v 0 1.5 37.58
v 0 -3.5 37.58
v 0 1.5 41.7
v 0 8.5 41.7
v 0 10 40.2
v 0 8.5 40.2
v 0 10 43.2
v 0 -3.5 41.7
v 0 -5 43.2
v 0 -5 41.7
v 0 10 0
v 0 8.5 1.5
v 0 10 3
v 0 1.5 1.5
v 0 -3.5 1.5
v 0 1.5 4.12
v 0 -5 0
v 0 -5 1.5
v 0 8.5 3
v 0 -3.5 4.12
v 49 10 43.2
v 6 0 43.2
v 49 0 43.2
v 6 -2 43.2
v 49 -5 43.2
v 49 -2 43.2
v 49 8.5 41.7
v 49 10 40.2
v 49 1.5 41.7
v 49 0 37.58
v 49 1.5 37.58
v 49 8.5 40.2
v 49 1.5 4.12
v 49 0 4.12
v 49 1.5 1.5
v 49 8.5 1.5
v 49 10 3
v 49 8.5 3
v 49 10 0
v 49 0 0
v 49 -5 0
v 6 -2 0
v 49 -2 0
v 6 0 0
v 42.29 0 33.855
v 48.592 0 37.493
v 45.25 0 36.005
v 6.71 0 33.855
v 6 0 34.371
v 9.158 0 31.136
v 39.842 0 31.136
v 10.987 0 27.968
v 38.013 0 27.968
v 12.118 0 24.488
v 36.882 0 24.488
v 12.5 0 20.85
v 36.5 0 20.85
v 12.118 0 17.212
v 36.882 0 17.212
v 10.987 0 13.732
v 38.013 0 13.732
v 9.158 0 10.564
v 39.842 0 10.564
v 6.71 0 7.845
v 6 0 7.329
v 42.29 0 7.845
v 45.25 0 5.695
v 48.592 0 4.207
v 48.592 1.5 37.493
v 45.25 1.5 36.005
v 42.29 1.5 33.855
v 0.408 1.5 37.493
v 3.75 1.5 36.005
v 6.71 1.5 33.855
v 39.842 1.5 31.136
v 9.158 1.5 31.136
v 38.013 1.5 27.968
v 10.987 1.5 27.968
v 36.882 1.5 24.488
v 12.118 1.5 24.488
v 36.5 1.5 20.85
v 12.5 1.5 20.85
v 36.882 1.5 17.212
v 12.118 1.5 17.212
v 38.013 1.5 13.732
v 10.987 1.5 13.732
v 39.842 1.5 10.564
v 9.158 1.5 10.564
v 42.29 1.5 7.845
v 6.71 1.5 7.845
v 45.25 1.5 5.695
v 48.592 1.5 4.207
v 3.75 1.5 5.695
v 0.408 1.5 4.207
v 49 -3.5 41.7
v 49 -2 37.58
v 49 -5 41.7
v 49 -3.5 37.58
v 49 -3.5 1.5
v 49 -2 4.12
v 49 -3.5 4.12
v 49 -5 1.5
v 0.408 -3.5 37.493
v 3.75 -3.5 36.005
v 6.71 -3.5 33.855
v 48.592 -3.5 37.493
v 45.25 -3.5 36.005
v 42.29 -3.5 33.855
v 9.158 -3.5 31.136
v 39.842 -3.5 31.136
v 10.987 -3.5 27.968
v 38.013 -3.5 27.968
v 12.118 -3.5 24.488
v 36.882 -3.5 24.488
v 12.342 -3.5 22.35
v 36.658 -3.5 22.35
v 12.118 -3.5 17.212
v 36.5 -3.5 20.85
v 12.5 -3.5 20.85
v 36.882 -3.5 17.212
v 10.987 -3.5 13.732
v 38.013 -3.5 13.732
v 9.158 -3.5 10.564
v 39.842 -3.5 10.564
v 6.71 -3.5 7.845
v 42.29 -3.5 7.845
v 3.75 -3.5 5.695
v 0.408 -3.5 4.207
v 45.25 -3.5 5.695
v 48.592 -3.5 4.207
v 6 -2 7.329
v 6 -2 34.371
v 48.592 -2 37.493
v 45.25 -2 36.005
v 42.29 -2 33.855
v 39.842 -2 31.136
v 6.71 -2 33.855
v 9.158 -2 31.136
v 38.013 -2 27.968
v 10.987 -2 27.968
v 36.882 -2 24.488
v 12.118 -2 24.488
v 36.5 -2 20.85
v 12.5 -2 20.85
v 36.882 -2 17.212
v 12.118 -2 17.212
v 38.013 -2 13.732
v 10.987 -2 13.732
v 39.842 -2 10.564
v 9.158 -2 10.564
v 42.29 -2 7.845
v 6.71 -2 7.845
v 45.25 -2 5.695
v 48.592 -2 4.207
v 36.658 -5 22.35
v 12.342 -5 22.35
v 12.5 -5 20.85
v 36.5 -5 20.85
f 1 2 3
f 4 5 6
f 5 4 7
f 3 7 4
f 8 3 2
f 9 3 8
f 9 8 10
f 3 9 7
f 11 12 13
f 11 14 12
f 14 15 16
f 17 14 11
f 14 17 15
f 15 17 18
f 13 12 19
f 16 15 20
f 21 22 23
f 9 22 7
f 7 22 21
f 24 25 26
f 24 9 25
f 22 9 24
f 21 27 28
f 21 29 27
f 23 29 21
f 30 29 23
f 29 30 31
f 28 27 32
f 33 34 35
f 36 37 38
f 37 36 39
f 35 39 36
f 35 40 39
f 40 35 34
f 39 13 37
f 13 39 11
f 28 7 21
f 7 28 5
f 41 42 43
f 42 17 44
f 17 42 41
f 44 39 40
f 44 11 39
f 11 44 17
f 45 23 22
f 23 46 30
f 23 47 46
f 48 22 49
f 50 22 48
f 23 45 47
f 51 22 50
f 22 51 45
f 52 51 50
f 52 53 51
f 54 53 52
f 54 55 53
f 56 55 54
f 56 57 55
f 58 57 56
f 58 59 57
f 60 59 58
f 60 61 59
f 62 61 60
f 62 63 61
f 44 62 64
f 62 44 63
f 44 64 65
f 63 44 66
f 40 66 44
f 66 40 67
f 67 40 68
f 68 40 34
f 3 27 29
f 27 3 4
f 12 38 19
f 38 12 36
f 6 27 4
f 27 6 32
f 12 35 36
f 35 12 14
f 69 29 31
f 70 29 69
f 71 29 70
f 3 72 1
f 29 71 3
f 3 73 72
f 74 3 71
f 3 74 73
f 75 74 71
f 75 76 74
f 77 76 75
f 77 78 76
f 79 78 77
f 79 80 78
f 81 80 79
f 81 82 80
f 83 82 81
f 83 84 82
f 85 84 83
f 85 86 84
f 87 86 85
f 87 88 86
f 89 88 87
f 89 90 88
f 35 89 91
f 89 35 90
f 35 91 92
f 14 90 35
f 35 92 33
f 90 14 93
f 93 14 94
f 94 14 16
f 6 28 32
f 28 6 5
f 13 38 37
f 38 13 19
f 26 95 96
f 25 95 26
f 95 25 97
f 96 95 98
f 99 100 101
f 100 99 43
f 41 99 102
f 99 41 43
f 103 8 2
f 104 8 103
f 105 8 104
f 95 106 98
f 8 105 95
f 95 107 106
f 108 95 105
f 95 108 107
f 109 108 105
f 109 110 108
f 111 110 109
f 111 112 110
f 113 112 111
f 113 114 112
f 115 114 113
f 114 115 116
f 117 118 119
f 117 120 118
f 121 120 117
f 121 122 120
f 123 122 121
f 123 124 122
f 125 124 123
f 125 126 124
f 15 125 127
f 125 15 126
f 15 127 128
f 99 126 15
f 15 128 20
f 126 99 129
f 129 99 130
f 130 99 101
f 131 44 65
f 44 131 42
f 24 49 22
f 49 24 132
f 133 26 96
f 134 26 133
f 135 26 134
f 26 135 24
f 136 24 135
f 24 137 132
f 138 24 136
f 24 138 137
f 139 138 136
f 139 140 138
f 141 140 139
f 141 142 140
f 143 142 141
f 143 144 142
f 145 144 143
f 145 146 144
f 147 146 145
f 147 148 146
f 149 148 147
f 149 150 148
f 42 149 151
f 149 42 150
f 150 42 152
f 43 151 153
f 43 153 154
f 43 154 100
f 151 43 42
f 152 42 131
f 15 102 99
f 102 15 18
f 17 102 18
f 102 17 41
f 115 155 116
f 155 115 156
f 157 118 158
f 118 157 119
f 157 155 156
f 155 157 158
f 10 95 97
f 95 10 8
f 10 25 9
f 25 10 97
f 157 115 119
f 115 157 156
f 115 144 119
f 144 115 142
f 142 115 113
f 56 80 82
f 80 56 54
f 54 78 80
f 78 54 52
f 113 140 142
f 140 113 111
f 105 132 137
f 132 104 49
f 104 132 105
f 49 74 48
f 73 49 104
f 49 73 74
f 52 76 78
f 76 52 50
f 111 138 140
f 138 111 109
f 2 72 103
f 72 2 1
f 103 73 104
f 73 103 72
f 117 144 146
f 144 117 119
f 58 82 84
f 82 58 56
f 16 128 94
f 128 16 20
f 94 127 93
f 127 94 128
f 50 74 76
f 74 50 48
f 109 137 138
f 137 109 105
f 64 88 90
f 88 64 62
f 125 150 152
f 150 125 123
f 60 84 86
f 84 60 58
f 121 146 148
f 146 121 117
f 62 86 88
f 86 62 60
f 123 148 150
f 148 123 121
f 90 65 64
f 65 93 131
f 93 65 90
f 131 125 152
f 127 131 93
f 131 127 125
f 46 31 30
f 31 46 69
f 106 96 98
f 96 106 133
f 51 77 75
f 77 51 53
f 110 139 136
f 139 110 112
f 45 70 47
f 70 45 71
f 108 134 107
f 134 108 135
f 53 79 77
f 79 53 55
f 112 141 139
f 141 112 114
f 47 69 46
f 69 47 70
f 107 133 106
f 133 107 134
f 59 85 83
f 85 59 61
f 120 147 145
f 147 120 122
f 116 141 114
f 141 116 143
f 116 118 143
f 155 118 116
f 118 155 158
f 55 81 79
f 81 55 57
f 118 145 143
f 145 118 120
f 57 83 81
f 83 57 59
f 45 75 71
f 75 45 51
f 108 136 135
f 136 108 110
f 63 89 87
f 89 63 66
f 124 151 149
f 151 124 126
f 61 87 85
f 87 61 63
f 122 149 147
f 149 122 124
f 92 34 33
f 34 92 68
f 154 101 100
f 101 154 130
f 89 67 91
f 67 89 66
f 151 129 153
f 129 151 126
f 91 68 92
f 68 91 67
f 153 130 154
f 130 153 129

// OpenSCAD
// 40x20 profile ribbon cable clip 90 degree
//
// Tronxy XY-2 Pro ribbon cable clip
// Holds main ribbon cable vertical after it exits control box

TOLERANCE       = 0.2;
CABLE_WIDTH     = 45.0;
CABLE_THICKNESS = 2.0;
CLIP_WIDTH      = CABLE_WIDTH + 4.0;
PROFILE_HEIGHT  = 40.0 + TOLERANCE;
PROFILE_CLIP    =  6.8 + TOLERANCE;
CLIP_OVERHANG   =  1.5;

THICKNESS       =1.5;

outer_cube = [ CLIP_WIDTH, 
               PROFILE_CLIP   + THICKNESS * 2,
               PROFILE_HEIGHT + THICKNESS * 2 ];

inner_cube = [ CLIP_WIDTH, 
               PROFILE_CLIP,
               PROFILE_HEIGHT ];
              
slot_cube  = [ CLIP_WIDTH, 
               THICKNESS,
               PROFILE_HEIGHT - CLIP_OVERHANG * 2 ];
               
outer_cable_cube = [ CLIP_WIDTH, 
                     CABLE_THICKNESS + THICKNESS,
                     PROFILE_HEIGHT + THICKNESS * 2 ];
               
inner_cable_cube = [ CLIP_WIDTH - THICKNESS, 
                     CABLE_THICKNESS,
                     PROFILE_HEIGHT + THICKNESS * 2 ];
                     
rib_cube         = [ CLIP_WIDTH, 
                     THICKNESS,
                     THICKNESS ];

difference() {
  union() {
    difference() { cube( outer_cube, center = false);
                   translate([0, THICKNESS, THICKNESS])
                     cube( inner_cube, center = false);
               
                   translate([0, 
                              PROFILE_CLIP + THICKNESS,
                              CLIP_OVERHANG + THICKNESS])
                     cube( slot_cube, center = false);
    };
    
    difference() { translate([0,
                              -(CABLE_THICKNESS + THICKNESS),
                              0])
                     cube( outer_cable_cube, center = false);
                   translate([THICKNESS * 4,
                              -CABLE_THICKNESS,
                              0])
                     cube( inner_cable_cube, center = false);
    };

    translate([0,
               -(CABLE_THICKNESS + THICKNESS + THICKNESS),
               0])
      cube( rib_cube, center = false);  

    translate([0,
               -(CABLE_THICKNESS + THICKNESS + THICKNESS),
               PROFILE_HEIGHT/2 + THICKNESS/2])
      cube( rib_cube, center = false);   

    translate([0,
               -(CABLE_THICKNESS + THICKNESS + THICKNESS),
               PROFILE_HEIGHT + THICKNESS])
      cube( rib_cube, center = false);   
  }; 
  translate([-5,0, PROFILE_HEIGHT/2 + THICKNESS/2])
    rotate([90,0,0])
      cylinder(h=10, d=35, center=true); 

  translate([CLIP_WIDTH + 5, 0, PROFILE_HEIGHT/2 + THICKNESS/2])
    rotate([90,0,0])
      cylinder(h=10, d=35, center=true); 
}
